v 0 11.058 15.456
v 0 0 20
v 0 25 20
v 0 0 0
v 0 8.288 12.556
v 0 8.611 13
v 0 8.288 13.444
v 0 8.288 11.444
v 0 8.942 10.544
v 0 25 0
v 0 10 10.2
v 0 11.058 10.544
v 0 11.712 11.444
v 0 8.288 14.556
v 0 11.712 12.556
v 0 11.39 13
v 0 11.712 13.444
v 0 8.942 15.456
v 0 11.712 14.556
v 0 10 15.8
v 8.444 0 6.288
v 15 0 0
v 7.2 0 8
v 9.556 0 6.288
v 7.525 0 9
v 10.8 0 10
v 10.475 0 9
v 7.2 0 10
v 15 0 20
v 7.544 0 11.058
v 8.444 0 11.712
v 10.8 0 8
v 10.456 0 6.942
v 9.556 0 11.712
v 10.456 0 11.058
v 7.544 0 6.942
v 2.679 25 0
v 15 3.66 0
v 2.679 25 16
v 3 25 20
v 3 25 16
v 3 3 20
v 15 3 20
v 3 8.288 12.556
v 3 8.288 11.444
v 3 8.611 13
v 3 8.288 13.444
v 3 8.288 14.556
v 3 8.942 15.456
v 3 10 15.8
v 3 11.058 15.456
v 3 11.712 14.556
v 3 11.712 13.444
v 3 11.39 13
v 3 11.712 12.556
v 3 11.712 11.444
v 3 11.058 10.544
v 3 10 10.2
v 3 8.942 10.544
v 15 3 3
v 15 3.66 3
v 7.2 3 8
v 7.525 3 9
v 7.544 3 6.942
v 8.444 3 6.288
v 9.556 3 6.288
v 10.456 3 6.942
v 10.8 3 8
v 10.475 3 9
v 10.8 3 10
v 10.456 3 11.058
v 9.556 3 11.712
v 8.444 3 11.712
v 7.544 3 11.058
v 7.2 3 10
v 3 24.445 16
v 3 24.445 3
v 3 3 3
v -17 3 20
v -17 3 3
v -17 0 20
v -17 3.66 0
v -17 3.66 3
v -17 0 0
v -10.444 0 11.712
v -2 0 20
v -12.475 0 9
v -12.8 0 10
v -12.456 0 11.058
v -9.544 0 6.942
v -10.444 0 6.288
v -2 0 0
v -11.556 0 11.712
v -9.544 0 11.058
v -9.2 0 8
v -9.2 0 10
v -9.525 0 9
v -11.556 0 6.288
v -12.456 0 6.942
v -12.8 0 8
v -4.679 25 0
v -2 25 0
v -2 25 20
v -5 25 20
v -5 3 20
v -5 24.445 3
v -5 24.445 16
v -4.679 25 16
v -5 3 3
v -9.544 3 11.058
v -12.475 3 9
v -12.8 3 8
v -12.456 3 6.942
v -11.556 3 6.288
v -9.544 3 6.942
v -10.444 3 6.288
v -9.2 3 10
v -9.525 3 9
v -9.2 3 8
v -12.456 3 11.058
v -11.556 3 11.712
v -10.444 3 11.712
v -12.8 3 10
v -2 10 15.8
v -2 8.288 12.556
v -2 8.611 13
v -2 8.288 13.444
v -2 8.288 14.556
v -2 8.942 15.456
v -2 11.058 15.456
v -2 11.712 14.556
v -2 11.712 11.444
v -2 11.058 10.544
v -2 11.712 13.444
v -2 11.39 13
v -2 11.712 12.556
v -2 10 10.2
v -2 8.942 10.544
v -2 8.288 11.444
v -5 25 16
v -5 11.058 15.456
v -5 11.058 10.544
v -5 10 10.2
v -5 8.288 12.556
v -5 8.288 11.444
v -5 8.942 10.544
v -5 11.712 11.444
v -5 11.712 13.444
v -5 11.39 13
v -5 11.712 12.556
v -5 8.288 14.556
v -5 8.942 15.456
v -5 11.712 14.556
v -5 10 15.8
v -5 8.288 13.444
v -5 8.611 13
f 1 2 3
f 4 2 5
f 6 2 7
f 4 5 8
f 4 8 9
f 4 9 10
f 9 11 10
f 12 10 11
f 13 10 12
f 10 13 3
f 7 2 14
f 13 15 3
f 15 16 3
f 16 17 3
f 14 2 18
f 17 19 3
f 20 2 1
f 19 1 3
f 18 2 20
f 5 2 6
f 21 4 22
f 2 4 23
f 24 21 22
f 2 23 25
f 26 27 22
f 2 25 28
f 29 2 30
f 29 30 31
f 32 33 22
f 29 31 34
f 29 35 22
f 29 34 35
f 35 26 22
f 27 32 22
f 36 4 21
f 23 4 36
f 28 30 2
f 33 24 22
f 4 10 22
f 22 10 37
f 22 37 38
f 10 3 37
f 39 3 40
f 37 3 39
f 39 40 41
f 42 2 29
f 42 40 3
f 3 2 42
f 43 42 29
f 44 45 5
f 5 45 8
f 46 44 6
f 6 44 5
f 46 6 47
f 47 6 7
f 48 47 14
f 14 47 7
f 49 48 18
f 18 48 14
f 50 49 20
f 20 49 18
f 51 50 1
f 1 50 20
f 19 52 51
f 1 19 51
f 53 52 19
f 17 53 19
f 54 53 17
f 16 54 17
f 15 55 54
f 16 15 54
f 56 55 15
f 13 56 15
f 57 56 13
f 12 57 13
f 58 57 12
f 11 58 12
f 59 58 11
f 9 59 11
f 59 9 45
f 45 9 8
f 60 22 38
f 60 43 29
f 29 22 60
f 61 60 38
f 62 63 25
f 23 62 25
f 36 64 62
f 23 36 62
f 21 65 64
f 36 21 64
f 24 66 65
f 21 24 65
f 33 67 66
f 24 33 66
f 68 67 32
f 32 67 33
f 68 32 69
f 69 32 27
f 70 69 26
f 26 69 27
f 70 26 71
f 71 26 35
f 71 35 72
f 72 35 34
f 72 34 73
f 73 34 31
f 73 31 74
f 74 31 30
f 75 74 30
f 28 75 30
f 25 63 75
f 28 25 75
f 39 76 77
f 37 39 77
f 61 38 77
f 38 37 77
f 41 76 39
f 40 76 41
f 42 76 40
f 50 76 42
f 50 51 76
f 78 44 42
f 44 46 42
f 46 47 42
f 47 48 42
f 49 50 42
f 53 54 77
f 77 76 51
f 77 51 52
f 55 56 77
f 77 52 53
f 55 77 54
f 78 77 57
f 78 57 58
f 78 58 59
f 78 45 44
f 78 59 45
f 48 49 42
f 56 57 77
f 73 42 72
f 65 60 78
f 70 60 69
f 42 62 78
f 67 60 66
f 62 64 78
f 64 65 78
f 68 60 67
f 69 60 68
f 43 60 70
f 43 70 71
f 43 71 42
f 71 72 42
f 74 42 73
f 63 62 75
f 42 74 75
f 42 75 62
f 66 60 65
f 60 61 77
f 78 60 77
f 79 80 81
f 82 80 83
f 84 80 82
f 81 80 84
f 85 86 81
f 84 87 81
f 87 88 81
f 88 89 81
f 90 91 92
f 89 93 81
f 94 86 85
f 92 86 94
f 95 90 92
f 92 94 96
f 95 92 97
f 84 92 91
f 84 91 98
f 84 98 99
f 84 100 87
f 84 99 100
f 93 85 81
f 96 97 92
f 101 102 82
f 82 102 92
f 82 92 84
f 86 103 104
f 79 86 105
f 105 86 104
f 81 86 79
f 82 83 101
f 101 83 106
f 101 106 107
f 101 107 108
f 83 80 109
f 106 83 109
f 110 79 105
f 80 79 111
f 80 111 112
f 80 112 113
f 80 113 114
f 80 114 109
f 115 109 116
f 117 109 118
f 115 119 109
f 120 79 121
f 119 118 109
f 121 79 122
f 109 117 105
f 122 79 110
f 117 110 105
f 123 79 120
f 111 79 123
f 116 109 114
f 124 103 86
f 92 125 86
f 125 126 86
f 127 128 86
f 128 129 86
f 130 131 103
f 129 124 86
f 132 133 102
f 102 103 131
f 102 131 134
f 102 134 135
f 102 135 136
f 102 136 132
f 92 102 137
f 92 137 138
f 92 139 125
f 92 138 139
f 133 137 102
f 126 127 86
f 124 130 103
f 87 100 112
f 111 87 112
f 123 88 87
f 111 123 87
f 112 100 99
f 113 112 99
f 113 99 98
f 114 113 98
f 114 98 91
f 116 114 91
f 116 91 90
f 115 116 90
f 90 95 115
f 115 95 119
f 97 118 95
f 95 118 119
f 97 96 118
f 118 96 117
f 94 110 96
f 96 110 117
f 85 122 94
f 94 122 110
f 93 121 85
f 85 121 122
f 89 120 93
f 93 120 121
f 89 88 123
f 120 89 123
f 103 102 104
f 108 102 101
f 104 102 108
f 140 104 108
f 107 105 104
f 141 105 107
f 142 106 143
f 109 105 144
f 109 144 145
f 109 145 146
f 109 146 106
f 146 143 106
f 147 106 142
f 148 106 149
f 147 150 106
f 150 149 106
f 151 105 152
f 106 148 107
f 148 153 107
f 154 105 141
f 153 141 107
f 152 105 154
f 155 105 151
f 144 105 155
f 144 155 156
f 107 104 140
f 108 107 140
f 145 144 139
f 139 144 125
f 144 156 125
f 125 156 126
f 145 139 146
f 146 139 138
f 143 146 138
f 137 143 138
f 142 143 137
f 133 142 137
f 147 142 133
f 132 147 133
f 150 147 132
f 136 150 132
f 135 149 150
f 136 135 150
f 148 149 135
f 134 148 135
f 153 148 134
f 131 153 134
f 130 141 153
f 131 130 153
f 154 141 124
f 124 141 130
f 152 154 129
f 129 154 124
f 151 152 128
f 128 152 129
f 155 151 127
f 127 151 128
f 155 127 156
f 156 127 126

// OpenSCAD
module rambo_holder(){
difference(){cube([15,25,20]);


translate([3,3,3]) cube([15,25,25]);
translate([20,-5,-1]) rotate([0,0,30]) cube([15,45,17]);

//translate([-2,3,14])  cube([15,45,17]);


translate([9,-1,8])rotate([-90,0,0])cylinder(r=1.8, h=30, $fn=10);
translate([9,-1,10])rotate([-90,0,0])cylinder(r=1.8, h=30, $fn=10);

translate([-1,10,12])rotate([0,90,0])cylinder(r=1.8, h=30, $fn=10);
translate([-1,10,14])rotate([0,90,0])cylinder(r=1.8, h=30, $fn=10);}

}

rambo_holder();
translate([-2,0,0])
mirror([1,0,0])
rambo_holder();
